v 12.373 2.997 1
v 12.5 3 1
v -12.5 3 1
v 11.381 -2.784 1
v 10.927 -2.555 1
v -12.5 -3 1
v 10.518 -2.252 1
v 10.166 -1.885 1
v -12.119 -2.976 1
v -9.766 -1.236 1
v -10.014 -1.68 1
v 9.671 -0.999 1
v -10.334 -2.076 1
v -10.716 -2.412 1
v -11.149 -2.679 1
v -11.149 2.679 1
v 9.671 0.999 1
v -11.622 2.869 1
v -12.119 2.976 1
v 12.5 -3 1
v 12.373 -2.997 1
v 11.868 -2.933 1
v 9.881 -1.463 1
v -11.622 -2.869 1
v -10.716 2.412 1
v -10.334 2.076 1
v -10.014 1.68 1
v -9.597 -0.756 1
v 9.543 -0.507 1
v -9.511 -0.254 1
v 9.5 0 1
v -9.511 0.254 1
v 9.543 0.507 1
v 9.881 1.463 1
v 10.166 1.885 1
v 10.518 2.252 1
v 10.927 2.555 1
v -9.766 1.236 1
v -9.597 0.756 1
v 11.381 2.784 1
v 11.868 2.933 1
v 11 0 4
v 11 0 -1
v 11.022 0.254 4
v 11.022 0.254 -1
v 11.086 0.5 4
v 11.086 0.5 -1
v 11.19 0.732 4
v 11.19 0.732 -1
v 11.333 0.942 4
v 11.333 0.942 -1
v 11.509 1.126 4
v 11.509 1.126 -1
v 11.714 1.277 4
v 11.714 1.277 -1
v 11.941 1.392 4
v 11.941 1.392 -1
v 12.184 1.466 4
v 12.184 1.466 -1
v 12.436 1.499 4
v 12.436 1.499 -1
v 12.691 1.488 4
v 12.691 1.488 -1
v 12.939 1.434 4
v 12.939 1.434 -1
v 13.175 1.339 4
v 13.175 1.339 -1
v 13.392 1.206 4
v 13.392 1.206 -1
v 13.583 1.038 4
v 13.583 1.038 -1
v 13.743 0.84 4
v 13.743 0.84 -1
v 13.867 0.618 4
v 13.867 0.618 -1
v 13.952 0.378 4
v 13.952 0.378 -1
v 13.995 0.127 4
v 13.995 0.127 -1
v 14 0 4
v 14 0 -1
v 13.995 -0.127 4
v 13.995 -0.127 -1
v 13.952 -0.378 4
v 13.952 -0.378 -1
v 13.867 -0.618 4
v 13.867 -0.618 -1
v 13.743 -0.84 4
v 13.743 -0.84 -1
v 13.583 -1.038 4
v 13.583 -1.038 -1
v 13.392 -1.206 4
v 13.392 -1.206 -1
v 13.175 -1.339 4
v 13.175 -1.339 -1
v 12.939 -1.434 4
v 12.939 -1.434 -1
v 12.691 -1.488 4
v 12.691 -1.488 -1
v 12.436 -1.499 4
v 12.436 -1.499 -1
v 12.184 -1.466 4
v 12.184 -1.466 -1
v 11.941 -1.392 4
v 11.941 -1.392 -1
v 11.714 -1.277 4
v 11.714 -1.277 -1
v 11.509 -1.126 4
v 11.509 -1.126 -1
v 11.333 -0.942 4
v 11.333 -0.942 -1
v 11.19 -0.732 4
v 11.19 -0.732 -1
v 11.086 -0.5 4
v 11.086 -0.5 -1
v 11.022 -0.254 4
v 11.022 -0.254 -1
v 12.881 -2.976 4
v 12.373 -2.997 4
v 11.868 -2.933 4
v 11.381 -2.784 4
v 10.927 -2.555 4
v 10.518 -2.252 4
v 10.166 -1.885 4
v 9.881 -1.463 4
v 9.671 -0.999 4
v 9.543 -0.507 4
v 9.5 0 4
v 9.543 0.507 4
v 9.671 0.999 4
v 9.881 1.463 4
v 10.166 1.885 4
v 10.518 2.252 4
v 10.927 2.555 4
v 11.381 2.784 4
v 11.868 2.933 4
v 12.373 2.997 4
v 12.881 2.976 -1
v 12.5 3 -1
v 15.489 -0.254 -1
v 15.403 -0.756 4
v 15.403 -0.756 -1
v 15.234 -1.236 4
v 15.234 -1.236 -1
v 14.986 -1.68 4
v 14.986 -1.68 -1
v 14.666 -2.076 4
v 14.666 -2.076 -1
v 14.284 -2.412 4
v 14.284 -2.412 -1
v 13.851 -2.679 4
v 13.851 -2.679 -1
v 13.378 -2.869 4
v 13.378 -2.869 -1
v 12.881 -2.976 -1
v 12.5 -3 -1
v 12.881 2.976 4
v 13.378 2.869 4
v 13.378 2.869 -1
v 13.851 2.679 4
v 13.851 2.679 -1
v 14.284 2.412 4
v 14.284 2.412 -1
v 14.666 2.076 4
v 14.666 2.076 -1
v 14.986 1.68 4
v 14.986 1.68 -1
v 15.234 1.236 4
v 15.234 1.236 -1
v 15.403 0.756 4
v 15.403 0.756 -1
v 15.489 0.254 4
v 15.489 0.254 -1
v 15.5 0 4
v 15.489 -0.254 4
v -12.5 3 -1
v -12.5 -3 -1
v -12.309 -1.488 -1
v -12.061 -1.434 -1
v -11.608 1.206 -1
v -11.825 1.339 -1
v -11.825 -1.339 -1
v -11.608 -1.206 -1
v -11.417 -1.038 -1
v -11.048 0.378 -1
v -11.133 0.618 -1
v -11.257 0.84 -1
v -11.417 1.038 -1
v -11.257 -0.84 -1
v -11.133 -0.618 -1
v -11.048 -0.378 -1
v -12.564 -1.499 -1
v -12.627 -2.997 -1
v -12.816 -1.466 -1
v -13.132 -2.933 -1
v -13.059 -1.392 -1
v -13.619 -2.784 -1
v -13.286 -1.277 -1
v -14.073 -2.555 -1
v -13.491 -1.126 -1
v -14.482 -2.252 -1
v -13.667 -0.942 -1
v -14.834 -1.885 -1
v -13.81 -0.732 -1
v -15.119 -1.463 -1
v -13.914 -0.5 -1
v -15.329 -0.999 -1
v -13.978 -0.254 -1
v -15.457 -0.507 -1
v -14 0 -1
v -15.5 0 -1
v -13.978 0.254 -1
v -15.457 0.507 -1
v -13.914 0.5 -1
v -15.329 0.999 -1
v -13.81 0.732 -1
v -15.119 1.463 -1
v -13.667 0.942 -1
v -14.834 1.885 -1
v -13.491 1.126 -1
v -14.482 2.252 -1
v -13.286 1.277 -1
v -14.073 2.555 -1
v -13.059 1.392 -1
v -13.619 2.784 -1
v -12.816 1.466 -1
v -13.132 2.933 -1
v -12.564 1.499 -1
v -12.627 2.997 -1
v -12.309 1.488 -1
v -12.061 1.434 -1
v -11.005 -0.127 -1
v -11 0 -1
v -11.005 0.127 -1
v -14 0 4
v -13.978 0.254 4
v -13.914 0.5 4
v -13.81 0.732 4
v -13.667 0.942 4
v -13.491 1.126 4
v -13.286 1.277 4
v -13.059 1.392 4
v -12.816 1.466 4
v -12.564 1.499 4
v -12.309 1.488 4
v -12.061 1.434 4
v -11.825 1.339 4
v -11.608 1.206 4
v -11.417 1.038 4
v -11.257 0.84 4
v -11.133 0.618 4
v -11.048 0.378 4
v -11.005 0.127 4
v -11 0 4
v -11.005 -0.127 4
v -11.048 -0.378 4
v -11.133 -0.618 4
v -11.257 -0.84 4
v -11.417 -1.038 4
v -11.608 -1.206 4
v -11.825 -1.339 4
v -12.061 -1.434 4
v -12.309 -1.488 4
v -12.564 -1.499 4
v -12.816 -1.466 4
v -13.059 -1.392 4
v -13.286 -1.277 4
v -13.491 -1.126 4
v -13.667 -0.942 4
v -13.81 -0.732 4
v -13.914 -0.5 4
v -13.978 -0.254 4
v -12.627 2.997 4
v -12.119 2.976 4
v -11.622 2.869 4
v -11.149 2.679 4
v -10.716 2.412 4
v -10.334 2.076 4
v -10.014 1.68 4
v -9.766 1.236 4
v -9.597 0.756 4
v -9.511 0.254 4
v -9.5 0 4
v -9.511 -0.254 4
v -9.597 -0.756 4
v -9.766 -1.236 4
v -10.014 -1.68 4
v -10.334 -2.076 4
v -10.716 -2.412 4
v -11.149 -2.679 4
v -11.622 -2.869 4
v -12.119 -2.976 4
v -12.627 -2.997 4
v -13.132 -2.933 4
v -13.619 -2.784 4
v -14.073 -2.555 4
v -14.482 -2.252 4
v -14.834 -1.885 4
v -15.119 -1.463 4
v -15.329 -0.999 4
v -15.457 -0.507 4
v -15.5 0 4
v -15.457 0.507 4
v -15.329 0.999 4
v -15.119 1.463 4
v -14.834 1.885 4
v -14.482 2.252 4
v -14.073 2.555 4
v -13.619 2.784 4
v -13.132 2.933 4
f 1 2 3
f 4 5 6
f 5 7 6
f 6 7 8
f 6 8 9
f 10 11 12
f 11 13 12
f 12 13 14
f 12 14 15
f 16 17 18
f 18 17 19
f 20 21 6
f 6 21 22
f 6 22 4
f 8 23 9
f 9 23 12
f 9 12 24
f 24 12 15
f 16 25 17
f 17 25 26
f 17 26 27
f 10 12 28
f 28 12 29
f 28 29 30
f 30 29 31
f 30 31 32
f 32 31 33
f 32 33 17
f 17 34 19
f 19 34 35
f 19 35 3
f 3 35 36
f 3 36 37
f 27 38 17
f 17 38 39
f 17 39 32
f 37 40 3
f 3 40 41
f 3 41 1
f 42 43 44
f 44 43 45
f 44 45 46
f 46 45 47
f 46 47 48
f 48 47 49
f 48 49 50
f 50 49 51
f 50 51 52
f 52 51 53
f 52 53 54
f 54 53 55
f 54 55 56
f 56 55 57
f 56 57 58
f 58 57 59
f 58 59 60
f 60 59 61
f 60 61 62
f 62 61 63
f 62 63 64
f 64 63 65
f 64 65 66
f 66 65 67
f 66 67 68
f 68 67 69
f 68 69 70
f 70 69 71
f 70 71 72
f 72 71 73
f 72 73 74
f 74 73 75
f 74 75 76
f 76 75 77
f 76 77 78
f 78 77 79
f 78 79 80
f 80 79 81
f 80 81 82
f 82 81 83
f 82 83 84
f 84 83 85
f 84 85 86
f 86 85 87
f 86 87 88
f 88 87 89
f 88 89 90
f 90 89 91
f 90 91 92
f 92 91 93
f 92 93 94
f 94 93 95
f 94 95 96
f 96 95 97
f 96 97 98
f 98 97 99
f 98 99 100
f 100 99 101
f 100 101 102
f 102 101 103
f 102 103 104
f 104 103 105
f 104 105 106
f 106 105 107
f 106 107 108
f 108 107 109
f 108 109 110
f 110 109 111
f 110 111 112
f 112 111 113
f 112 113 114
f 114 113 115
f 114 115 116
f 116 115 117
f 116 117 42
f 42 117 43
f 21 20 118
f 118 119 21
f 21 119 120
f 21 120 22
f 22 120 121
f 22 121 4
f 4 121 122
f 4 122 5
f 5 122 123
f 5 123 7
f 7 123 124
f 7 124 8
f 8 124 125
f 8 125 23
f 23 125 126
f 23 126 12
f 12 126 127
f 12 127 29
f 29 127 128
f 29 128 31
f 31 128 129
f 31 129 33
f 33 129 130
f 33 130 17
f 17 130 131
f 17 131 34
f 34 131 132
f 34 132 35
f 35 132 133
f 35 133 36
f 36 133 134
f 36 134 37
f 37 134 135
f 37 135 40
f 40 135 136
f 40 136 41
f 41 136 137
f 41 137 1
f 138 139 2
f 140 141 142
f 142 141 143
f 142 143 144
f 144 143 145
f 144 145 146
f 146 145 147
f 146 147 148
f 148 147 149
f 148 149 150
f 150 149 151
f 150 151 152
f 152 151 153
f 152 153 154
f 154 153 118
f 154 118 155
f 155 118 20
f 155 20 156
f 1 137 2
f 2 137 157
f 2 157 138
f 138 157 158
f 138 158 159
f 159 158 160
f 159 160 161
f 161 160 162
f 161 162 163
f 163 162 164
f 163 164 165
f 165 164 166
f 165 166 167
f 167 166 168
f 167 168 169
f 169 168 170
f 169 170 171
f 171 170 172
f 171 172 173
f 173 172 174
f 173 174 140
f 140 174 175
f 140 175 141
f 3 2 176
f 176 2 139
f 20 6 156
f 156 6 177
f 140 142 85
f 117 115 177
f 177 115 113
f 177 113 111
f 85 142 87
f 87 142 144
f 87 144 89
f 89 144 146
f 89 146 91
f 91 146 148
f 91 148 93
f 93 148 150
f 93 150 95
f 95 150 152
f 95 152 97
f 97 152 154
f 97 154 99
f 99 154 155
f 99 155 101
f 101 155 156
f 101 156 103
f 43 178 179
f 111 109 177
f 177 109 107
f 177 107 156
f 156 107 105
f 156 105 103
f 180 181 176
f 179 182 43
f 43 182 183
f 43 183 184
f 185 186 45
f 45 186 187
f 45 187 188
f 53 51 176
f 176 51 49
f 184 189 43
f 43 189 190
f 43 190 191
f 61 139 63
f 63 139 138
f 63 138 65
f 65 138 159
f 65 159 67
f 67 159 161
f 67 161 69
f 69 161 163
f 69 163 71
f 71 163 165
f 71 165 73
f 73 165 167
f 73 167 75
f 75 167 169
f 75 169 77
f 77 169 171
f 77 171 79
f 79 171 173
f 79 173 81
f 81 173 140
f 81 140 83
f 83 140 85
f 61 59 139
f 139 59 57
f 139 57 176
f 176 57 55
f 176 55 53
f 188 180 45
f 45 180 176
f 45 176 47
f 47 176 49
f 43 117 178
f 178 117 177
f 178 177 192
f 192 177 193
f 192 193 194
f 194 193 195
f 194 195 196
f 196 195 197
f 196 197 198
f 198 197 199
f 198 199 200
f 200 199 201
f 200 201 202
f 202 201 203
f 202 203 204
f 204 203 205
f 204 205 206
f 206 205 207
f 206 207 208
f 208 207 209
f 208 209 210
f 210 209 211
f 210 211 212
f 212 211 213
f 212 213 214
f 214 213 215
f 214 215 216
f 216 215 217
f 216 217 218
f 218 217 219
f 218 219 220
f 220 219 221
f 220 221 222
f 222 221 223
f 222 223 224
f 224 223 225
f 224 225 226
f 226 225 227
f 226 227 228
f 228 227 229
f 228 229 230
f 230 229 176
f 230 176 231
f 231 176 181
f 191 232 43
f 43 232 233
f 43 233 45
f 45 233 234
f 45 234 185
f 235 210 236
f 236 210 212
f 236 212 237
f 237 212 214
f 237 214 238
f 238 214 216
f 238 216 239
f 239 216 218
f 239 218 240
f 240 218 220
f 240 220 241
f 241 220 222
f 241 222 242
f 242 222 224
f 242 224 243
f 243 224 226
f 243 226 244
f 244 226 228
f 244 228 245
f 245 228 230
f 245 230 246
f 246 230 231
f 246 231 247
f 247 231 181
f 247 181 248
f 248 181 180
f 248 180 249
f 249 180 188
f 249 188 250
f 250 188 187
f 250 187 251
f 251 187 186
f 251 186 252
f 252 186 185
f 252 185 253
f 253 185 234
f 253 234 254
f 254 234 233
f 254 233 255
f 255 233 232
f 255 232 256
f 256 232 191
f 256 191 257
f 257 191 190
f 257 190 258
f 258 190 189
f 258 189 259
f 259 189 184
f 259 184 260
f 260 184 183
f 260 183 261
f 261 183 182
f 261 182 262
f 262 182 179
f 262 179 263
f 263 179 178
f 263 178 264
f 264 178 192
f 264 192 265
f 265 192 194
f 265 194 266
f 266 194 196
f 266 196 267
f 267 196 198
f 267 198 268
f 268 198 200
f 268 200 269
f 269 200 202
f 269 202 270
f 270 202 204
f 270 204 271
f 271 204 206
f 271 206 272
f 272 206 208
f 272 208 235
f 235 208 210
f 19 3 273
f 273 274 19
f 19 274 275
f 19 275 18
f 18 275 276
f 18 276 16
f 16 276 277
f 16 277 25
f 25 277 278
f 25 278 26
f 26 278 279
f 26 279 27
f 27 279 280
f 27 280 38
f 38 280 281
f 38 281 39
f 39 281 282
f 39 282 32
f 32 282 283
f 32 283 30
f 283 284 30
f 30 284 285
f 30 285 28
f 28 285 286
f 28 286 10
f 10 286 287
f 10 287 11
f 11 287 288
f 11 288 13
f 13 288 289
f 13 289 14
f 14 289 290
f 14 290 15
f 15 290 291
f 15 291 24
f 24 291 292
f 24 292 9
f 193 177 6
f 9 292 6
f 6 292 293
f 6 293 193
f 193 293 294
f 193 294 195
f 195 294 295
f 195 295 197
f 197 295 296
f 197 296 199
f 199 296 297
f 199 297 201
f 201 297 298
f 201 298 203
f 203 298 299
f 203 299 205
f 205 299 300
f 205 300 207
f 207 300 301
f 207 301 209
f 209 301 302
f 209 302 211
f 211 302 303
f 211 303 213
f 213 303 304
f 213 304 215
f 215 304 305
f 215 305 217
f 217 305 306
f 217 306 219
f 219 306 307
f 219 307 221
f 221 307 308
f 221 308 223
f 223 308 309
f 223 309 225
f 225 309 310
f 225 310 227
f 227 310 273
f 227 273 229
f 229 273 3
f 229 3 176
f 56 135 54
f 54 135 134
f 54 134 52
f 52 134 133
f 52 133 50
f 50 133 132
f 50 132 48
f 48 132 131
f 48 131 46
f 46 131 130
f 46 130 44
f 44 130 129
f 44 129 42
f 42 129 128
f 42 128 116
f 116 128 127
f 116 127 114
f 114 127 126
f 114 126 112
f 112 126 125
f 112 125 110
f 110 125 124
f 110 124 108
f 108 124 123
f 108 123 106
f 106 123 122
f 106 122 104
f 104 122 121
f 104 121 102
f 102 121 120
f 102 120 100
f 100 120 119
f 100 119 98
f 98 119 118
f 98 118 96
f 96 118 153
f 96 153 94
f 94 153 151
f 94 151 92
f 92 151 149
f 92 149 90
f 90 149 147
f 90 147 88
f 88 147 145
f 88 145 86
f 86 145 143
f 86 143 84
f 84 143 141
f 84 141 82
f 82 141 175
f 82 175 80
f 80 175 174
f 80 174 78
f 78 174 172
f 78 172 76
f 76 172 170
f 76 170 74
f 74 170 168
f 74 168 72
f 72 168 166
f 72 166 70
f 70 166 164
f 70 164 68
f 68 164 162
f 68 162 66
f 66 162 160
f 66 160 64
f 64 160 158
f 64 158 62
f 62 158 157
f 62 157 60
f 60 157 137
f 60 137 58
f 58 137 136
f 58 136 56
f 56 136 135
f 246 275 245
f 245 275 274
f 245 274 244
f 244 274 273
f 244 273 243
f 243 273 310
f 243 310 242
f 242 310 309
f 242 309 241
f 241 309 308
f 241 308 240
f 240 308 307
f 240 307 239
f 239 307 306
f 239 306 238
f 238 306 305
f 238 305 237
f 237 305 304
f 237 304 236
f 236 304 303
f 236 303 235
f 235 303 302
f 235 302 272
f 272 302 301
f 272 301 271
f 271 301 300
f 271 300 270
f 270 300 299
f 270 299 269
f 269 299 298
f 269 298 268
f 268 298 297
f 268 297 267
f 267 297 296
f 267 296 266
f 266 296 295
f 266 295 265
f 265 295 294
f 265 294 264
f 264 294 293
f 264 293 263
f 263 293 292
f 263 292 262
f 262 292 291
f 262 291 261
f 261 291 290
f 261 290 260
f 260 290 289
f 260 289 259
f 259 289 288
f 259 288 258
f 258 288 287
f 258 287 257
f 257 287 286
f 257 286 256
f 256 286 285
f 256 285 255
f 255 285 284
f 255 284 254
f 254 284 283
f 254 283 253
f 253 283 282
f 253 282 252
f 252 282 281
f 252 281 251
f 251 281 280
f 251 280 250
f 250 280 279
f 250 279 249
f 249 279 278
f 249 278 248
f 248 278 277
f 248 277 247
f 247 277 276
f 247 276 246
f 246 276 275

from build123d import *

# Parameters (mm, degrees)
SKETCH_1_R      = 1.5
EXTRUDE_1_DEPTH = 1
SKETCH_1_4_R    = 3
SKETCH_1_4_R_2  = 1.5
EXTRUDE_3_DEPTH = 4


with BuildPart() as part:
    # Эскиз1 → Бобышка-Вытянуть1 (new, symmetric)
    with BuildSketch(Plane.XY):
        with BuildLine():
            Line((12.5, 3), (-12.5, 3))
            ThreePointArc((-12.5, 3), (-15.5, 0), (-12.5, -3))
            Line((-12.5, -3), (12.5, -3))
            ThreePointArc((12.5, -3), (15.5, 0), (12.5, 3))
        make_face()
        with Locations((12.5, 0)):
            Circle(SKETCH_1_R, mode=Mode.SUBTRACT)
        with Locations((-12.5, 0)):
            Circle(SKETCH_1_R, mode=Mode.SUBTRACT)
    extrude(amount=EXTRUDE_1_DEPTH, both=True)

    # Эскиз1<4> → Бобышка-Вытянуть3 (add)
    # profile 1 of 2: a face of its own
    with BuildSketch(Plane.XY):
        with Locations((-12.5, 0)):
            Circle(SKETCH_1_4_R)
        with Locations((-12.5, 0)):
            Circle(SKETCH_1_4_R_2, mode=Mode.SUBTRACT)
    # profile 2 of 2: a face of its own
    with BuildSketch(Plane.XY):
        with Locations((12.5, 0)):
            Circle(SKETCH_1_4_R)
        with Locations((12.5, 0)):
            Circle(SKETCH_1_4_R_2, mode=Mode.SUBTRACT)
    extrude(amount=EXTRUDE_3_DEPTH)


solid = part.part
